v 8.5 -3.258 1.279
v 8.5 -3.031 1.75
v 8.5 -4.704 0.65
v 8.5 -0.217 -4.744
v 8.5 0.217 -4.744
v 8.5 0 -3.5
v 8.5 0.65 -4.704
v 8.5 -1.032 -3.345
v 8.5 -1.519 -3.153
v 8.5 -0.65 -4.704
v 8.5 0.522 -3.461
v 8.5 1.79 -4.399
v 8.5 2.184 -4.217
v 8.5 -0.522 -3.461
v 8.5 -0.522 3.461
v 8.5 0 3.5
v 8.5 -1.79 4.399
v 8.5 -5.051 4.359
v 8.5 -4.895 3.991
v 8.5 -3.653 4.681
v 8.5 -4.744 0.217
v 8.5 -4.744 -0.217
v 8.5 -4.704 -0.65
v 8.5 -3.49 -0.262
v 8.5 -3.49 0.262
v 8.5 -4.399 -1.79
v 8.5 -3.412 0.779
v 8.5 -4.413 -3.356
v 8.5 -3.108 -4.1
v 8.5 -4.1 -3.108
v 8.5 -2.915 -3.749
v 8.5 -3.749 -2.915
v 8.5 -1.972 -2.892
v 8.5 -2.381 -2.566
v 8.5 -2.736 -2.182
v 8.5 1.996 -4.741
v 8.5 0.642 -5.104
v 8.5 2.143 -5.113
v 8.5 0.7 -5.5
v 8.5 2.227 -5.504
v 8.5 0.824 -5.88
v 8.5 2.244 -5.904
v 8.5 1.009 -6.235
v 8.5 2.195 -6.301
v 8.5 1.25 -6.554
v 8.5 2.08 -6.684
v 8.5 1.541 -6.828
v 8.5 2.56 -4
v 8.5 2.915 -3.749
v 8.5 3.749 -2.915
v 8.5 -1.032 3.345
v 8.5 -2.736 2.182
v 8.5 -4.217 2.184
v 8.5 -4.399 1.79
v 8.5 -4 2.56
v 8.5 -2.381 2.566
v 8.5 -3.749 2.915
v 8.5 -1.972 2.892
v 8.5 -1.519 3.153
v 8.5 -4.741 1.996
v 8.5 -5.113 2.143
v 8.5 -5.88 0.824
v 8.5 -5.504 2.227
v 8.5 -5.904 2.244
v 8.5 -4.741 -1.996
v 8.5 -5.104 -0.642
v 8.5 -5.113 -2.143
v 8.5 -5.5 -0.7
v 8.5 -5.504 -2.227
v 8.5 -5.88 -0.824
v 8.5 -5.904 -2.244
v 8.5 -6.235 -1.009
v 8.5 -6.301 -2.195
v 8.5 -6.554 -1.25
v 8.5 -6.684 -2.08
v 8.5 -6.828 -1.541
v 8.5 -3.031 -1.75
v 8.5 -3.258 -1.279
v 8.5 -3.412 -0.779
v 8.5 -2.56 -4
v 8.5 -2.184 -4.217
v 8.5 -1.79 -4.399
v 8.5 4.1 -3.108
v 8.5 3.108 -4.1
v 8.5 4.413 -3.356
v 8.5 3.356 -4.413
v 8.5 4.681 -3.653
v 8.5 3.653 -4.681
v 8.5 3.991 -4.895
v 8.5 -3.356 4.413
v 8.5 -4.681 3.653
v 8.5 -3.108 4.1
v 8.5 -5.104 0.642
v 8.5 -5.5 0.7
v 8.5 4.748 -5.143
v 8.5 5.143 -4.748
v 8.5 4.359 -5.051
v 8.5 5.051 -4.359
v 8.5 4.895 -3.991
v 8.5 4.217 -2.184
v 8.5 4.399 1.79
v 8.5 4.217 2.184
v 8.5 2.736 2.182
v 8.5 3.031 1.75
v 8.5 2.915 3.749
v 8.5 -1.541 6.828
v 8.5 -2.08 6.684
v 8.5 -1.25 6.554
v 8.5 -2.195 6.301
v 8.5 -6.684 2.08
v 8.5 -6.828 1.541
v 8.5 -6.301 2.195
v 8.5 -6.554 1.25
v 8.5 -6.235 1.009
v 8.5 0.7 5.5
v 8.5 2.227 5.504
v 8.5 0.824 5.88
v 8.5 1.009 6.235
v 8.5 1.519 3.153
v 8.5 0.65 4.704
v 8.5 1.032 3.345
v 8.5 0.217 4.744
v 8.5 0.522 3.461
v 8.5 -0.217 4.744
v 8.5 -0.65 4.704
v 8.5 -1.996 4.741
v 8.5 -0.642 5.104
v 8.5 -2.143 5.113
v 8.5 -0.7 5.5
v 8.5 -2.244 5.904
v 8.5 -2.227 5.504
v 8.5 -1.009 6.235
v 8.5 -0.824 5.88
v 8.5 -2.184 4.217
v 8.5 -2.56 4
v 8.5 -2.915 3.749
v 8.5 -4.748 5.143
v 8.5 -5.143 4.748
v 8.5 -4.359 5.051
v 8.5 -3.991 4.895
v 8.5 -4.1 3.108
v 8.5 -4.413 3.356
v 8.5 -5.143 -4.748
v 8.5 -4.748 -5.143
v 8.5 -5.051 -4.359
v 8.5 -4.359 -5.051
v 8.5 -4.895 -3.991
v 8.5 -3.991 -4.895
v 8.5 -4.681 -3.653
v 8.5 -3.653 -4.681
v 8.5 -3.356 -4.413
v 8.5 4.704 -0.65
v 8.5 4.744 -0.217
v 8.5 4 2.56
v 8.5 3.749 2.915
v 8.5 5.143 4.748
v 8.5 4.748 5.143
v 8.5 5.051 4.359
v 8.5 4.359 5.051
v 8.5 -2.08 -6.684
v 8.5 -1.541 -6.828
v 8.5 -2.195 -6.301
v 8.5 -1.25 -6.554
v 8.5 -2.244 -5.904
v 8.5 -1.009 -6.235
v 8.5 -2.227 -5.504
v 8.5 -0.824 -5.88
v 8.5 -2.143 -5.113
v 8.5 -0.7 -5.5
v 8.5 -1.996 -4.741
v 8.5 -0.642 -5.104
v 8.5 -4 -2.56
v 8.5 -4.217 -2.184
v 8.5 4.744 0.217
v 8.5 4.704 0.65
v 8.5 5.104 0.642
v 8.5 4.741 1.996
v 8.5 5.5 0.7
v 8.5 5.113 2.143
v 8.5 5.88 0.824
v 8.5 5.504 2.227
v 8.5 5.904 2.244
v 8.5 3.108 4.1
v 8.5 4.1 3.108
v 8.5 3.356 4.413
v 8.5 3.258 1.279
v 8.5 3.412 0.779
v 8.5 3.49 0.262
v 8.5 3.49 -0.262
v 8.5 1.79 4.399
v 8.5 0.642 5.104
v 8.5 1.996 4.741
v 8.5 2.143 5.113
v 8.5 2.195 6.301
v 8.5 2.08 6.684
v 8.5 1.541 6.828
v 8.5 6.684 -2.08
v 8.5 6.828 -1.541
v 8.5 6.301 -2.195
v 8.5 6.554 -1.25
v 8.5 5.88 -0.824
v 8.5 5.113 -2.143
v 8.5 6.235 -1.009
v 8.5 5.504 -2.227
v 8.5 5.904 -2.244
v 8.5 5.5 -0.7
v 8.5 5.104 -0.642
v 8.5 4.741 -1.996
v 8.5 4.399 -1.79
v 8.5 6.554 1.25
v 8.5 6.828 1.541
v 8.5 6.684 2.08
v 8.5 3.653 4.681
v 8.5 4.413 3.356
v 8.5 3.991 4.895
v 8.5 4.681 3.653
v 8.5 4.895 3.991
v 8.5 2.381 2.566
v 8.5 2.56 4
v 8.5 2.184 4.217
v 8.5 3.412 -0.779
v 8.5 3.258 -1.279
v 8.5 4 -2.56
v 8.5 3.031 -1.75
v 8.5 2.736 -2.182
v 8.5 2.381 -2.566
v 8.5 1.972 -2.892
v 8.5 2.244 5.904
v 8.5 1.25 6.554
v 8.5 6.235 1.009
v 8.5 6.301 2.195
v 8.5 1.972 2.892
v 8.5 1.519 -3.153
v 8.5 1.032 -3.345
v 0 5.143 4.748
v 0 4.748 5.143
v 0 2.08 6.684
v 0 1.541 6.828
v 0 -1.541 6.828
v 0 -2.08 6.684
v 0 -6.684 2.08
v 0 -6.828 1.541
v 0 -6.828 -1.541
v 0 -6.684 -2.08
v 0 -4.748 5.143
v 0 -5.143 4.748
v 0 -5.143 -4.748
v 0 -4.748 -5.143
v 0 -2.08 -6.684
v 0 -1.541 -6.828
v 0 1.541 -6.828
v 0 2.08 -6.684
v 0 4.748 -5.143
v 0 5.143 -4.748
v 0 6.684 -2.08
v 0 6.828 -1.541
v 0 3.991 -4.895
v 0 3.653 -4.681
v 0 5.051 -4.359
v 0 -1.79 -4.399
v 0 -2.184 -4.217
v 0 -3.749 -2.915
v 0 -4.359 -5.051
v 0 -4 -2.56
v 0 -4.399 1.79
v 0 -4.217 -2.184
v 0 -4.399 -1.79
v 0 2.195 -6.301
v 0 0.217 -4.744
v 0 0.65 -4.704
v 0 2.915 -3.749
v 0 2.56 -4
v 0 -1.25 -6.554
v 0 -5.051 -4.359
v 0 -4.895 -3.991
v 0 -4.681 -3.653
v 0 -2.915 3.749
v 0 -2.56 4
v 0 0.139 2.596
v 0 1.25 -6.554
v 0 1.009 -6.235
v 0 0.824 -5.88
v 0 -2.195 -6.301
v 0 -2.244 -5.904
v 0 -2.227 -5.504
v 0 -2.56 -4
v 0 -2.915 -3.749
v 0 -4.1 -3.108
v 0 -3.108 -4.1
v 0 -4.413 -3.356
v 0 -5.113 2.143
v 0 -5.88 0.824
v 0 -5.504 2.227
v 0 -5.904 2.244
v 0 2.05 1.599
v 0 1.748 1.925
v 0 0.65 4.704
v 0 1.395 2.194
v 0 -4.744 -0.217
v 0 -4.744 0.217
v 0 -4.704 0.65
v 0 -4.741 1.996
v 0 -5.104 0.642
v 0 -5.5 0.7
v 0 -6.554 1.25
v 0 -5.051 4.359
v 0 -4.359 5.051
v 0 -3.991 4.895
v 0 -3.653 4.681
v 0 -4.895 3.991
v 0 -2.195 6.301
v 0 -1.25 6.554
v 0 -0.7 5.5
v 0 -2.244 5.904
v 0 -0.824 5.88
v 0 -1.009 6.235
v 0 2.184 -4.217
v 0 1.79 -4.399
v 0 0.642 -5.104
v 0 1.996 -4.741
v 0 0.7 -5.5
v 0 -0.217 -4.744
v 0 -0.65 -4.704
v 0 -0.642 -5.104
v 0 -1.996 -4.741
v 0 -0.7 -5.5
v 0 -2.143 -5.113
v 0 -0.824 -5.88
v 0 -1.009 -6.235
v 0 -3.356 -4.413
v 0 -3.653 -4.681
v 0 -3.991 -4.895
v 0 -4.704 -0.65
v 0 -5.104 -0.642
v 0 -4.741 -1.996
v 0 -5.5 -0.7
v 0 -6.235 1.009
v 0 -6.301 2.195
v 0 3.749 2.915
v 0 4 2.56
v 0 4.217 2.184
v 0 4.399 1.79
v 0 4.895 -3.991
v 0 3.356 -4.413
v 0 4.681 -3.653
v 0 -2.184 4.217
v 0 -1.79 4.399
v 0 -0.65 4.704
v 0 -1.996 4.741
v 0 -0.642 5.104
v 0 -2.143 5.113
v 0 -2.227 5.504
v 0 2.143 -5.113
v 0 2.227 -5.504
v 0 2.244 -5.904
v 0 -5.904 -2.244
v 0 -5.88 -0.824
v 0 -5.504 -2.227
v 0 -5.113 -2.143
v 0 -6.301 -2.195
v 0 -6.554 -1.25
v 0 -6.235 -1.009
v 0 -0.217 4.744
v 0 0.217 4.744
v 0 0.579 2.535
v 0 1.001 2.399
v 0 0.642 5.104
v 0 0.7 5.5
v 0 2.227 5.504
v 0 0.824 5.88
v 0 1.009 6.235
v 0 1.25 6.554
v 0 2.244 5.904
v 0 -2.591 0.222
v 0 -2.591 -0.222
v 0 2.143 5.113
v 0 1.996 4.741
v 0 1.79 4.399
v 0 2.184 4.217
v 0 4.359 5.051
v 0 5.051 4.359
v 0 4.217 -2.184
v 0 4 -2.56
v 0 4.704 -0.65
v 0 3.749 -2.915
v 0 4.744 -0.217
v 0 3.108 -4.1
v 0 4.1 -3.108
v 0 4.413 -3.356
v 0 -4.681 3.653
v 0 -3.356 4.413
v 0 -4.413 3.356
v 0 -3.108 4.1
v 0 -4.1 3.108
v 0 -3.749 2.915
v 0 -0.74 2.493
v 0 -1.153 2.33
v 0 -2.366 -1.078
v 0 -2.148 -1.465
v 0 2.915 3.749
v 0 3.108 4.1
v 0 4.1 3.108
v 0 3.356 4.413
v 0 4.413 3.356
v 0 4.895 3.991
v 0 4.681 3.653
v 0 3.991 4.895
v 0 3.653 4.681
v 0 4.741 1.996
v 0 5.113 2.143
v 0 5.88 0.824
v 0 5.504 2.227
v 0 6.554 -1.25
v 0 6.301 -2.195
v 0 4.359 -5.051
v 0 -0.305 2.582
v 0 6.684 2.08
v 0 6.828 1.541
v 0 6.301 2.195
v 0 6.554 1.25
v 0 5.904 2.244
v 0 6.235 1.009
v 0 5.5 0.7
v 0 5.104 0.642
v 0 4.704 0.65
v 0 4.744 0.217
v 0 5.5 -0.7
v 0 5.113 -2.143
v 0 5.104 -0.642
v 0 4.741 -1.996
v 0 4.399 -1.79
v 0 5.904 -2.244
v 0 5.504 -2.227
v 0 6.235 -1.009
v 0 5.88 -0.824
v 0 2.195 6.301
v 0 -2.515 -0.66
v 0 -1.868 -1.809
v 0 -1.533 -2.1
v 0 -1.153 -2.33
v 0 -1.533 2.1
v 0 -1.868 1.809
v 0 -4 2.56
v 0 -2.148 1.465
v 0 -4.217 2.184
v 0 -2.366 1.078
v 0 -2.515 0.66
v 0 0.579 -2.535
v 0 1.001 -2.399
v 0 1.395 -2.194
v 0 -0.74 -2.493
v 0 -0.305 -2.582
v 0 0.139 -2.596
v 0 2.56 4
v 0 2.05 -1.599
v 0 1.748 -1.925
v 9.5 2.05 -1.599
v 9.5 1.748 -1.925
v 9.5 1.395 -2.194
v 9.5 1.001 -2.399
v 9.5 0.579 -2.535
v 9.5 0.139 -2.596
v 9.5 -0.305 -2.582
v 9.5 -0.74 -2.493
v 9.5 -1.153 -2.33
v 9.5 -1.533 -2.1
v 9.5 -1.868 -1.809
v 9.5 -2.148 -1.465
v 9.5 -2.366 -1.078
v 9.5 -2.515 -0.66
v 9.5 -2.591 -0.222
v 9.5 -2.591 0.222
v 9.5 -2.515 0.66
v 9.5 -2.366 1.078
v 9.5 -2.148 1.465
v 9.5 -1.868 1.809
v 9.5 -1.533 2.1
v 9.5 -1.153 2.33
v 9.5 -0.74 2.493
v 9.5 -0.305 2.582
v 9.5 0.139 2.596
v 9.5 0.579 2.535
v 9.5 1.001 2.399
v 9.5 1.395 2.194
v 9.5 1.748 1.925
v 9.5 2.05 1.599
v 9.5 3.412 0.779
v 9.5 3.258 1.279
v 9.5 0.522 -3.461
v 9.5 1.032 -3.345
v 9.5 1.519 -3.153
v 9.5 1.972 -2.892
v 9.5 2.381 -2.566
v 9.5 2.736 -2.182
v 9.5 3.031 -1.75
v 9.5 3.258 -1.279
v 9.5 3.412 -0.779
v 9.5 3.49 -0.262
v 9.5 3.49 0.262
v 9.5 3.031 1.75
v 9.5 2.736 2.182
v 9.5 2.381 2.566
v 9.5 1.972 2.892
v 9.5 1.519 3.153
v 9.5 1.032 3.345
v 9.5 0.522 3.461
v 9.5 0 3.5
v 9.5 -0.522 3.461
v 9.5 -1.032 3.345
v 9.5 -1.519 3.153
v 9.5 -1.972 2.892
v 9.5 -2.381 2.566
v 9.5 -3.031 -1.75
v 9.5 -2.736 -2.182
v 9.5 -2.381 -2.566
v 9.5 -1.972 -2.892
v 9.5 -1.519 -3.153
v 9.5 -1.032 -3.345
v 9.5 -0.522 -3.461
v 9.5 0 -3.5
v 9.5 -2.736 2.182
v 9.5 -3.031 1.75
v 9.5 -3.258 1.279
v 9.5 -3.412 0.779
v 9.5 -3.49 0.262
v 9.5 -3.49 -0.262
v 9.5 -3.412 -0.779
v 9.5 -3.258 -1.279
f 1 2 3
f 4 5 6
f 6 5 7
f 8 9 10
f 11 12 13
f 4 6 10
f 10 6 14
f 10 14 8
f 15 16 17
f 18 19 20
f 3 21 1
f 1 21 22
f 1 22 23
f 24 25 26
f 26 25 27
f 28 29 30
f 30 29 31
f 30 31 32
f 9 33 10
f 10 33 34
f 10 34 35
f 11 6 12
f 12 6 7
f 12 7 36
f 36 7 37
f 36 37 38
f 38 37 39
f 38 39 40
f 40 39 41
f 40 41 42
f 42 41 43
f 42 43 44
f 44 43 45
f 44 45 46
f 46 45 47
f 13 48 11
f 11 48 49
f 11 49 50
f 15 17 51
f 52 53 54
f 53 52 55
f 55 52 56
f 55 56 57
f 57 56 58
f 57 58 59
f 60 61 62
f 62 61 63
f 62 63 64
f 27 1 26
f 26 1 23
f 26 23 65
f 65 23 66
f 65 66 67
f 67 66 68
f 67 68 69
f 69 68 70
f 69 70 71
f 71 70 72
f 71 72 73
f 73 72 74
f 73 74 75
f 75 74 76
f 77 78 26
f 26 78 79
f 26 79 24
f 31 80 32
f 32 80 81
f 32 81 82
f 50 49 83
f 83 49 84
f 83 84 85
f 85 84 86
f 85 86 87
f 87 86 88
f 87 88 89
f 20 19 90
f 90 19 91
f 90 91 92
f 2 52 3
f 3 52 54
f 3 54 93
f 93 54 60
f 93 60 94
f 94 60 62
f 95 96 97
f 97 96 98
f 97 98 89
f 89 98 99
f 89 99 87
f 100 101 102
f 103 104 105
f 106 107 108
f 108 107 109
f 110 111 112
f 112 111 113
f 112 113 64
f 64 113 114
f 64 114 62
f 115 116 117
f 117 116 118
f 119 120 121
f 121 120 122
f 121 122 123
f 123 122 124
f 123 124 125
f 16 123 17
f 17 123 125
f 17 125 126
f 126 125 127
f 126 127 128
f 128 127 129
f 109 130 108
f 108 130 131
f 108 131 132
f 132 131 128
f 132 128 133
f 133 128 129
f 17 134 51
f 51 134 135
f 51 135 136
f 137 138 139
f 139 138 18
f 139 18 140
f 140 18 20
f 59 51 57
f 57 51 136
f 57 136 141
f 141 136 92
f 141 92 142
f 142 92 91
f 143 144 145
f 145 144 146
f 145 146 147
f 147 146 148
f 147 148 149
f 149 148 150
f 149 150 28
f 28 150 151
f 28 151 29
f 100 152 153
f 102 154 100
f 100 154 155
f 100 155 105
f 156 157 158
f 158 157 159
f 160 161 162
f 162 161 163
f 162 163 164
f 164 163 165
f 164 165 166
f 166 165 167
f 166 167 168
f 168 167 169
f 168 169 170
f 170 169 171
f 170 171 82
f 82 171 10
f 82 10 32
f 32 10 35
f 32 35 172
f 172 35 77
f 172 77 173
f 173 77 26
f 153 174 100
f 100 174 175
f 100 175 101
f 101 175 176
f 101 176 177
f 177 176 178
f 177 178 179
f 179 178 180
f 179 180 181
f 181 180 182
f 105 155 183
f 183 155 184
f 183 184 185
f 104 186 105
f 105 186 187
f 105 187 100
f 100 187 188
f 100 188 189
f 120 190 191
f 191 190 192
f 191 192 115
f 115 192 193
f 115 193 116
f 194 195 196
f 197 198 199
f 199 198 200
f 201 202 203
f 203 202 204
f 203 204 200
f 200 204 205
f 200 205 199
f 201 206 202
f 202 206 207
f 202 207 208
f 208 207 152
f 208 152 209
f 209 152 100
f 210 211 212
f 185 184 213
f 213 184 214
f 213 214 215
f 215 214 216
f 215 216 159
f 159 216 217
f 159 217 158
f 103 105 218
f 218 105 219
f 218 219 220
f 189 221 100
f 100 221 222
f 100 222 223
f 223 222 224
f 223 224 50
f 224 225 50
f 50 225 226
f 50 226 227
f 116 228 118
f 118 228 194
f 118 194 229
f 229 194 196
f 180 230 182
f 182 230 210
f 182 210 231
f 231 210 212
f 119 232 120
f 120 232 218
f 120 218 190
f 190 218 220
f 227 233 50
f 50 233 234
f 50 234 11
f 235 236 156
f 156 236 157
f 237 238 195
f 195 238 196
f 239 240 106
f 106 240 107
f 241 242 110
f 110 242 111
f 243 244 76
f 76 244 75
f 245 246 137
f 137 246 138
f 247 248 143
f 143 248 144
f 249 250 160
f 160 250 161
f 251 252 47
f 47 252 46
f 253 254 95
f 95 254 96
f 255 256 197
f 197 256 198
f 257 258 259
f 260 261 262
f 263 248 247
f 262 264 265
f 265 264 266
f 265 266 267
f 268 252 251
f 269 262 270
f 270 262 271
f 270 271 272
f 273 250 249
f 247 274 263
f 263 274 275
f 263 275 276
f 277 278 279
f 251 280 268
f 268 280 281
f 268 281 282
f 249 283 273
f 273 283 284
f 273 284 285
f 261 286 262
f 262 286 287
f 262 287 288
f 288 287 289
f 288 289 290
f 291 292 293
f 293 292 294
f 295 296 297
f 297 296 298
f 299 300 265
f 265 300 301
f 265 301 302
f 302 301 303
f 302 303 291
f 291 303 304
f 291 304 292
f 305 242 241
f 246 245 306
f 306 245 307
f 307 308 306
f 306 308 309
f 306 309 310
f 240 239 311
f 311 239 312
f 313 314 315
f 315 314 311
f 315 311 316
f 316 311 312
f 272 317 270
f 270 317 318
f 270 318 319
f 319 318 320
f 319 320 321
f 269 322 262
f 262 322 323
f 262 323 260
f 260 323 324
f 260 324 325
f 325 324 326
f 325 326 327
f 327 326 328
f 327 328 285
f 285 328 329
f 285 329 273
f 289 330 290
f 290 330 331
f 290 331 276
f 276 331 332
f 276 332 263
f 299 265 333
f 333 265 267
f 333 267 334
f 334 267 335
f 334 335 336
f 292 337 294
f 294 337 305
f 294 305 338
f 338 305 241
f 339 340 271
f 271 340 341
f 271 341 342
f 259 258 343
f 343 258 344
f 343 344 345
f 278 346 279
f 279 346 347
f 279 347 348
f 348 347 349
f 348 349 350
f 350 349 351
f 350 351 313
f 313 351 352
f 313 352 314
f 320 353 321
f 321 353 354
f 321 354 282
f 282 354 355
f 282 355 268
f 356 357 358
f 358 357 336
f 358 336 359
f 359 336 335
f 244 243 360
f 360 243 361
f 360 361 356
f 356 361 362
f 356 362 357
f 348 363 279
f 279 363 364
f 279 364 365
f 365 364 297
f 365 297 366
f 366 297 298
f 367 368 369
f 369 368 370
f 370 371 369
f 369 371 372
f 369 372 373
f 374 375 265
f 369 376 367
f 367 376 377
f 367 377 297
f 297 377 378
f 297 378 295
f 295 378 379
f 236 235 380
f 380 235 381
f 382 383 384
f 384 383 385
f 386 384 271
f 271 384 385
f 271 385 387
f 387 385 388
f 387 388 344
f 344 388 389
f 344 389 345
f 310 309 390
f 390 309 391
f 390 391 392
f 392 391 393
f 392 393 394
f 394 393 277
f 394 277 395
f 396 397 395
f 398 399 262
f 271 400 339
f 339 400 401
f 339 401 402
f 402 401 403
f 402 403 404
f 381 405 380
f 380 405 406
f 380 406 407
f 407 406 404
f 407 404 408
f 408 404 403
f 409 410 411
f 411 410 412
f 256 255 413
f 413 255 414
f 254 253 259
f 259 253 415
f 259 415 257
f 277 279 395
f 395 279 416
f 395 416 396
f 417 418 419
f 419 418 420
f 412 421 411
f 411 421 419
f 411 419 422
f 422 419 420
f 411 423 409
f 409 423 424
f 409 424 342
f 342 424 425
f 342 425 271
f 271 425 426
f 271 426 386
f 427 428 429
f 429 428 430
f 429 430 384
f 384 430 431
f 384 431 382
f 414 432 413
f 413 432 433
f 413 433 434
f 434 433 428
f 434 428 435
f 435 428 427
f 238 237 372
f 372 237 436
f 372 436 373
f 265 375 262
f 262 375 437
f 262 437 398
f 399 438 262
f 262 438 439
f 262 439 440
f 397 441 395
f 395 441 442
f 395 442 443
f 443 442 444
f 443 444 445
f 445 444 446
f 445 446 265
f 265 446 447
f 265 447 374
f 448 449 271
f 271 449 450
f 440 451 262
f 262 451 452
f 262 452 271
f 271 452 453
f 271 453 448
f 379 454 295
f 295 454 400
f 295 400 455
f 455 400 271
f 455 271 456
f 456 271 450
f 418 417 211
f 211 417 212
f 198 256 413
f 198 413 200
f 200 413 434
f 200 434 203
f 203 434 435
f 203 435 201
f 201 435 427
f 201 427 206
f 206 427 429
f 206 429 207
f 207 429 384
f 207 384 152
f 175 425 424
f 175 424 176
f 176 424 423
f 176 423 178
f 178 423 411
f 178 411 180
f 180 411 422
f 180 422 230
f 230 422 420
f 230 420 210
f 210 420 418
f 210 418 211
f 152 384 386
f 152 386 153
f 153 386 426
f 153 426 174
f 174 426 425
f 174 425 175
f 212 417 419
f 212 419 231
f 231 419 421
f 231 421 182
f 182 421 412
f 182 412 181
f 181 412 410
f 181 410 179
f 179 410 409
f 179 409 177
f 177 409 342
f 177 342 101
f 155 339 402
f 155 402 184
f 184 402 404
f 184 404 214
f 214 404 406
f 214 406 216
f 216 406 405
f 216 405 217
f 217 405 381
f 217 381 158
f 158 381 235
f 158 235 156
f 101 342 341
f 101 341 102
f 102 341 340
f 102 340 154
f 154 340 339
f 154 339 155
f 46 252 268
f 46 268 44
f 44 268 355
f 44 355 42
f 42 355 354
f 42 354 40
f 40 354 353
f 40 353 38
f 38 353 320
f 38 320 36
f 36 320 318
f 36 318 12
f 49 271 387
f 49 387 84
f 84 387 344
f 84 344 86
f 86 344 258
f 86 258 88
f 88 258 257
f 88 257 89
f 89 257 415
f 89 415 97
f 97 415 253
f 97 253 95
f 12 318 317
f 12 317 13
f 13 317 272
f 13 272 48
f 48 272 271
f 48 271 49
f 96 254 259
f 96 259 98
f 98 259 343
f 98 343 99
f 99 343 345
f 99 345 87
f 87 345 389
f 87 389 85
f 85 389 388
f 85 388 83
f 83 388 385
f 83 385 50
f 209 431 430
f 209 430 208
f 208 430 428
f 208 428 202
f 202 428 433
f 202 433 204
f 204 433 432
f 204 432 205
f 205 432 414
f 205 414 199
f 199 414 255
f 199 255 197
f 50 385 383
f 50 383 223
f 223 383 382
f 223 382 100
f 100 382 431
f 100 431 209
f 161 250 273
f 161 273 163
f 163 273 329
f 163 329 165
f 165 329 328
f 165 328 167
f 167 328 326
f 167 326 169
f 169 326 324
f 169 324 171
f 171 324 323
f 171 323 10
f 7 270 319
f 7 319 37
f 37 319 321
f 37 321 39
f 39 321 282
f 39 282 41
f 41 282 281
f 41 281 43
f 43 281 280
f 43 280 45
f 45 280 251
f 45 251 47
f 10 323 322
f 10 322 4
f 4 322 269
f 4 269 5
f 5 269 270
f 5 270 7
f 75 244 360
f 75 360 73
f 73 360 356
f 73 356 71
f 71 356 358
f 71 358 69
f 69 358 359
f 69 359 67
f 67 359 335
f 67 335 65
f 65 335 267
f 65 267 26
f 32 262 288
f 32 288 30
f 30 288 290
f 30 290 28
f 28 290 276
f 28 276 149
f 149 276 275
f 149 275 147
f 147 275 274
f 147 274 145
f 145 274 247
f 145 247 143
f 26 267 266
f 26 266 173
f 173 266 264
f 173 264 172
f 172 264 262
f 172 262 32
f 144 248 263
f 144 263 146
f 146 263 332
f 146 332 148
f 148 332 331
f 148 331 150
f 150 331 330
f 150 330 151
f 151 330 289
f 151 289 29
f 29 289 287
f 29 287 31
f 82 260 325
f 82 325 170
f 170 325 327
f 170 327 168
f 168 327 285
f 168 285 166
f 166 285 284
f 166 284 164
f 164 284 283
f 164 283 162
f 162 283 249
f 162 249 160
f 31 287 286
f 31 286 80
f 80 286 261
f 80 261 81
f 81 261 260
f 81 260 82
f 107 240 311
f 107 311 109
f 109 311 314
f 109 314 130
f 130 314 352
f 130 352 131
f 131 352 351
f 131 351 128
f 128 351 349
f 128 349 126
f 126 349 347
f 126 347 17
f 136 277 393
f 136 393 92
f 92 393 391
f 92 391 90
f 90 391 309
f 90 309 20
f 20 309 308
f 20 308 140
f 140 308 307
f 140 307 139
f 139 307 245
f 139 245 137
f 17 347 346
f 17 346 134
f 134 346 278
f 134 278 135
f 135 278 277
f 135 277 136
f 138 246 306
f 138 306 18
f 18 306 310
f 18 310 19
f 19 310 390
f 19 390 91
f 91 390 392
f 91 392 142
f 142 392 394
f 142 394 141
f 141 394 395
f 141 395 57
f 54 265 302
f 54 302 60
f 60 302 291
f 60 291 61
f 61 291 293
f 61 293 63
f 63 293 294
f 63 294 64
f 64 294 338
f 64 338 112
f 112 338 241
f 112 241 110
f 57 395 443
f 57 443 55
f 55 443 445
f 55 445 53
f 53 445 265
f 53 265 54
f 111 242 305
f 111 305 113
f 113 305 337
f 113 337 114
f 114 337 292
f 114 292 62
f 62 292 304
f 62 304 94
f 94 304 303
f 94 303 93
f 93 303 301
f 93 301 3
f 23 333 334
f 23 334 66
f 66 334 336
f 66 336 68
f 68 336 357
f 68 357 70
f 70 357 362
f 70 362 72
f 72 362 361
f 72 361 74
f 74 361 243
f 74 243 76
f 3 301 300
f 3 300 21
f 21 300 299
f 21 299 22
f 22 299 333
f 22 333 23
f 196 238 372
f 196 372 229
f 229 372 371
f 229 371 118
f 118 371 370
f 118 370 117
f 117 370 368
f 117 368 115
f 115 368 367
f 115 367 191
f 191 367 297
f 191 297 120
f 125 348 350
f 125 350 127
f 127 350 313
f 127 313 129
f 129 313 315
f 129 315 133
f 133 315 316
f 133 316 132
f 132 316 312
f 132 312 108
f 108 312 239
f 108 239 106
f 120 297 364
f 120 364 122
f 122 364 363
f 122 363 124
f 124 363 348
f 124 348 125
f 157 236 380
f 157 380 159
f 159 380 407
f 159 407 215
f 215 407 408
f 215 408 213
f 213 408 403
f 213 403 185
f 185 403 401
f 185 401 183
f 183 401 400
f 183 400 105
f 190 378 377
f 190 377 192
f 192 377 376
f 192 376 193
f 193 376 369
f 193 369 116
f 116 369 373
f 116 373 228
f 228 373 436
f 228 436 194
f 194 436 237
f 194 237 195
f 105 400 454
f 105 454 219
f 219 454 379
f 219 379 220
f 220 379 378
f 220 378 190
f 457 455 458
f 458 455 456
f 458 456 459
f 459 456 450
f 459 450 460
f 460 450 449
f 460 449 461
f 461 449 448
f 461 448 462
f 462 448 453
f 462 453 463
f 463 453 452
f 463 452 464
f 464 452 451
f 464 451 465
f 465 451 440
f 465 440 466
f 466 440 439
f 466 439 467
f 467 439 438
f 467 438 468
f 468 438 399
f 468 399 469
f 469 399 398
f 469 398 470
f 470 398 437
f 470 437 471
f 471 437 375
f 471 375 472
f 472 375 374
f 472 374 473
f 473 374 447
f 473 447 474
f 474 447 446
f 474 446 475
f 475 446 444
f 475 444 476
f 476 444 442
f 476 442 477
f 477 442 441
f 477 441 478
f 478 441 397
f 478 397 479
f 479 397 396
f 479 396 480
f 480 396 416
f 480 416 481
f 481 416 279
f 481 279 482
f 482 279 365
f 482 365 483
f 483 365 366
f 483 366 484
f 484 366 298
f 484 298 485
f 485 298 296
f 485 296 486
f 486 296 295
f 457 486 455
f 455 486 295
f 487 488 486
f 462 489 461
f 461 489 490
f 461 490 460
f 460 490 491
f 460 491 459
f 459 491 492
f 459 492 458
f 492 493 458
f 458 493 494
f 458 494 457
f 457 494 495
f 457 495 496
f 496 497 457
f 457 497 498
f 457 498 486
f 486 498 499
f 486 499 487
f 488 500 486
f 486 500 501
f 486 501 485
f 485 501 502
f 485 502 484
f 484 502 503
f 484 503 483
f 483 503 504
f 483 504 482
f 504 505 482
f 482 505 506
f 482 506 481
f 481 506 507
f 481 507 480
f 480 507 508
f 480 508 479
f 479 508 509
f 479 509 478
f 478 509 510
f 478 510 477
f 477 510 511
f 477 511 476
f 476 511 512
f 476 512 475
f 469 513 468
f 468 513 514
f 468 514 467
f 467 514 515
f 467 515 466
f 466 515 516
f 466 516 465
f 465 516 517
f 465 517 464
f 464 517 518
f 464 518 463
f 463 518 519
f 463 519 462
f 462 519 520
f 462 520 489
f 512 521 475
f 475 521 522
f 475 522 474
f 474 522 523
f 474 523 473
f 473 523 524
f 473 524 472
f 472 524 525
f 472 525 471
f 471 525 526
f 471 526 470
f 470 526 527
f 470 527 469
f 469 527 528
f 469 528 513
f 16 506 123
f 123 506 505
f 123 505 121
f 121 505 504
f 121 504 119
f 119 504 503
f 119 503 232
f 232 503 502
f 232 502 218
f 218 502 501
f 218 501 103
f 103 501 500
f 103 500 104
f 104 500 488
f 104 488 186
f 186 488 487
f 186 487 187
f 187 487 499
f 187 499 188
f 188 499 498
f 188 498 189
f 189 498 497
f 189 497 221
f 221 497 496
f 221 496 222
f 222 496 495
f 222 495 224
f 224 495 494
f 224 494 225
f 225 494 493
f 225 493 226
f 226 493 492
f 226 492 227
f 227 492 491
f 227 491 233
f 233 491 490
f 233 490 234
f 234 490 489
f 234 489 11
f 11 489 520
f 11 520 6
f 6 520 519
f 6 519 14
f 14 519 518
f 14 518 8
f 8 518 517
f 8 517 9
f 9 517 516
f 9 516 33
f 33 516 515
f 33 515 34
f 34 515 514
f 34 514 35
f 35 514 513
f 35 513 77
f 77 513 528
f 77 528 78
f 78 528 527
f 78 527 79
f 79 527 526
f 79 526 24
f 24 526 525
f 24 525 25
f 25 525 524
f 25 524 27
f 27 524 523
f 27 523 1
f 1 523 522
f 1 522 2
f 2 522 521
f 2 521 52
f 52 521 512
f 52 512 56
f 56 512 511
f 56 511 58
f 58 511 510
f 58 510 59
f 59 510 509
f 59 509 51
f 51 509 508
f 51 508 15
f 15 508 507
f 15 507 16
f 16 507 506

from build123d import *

# Parameters (mm, degrees)
BASPROSKE_W         = 8.5
BASPROSKE_H         = 7
TOOTHCUT_DEPTH      = 14.047988351
TEETHCUTS_COUNT     = 12
TEETHCUTS_ANGLE     = 330
BORSKE_R            = 2.6
BORE_DEPTH          = 50.0000508
BOSS_EXTRUDE1_DEPTH = 8.5
SKETCH2_R           = 3.5
BOSS_EXTRUDE2_DEPTH = 1


with BuildPart() as part:
    # BasProSke → Base-Revolve (revolve)
    with BuildSketch(Plane(origin=(0, 0, 0), x_dir=(1, 0, 0), z_dir=(0, 1, 0)), mode=Mode.PRIVATE) as base_revolve_sk:
        with Locations((4.25, 3.5)):
            Rectangle(BASPROSKE_W, BASPROSKE_H)
    revolve(base_revolve_sk.sketch.rotate(Axis((-10, 0, 0), (1, 0, 0)), 180), axis=Axis((-10, 0, 0), (1, 0, 0)))

    # TooCutSke → ToothCut (cut, through all)
    with BuildSketch(Plane(origin=(0, 0, 0), x_dir=(0, 0, -1), z_dir=(1, 0, 0))):
        with BuildLine():
            ThreePointArc((0.649675465, 4.704351474), (0, 4.749), (-0.649675465, 4.704351474))
            ThreePointArc((-0.649675465, 4.704351474), (-0.830100462, 5.895273832), (-1.56637772, 6.84855503))
            ThreePointArc((-1.56637772, 6.84855503), (0, 7.0254), (1.56637772, 6.84855503))
            ThreePointArc((1.56637772, 6.84855503), (0.830100462, 5.895273832), (0.649675465, 4.704351474))
        make_face()
    toothcut = extrude(amount=TOOTHCUT_DEPTH, mode=Mode.SUBTRACT)

    # TeethCuts: ToothCut ×12 about axis
    teethcuts_axis = Axis((-10, 0, 0), (1, 0, 0))
    for i in range(1, TEETHCUTS_COUNT):
        add(toothcut.rotate(teethcuts_axis, i * TEETHCUTS_ANGLE / (TEETHCUTS_COUNT - 1)), mode=Mode.SUBTRACT)

    # BorSke → Bore (cut, symmetric)
    with BuildSketch(Plane(origin=(0, 0, 0), x_dir=(0, 0, -1), z_dir=(1, 0, 0))):
        with Locations(Location((0, 0, 0), (0, 0, 180))):
            Circle(BORSKE_R)
    extrude(amount=BORE_DEPTH, both=True, mode=Mode.SUBTRACT)

    # Sketch1 → Boss-Extrude1 (add)
    with BuildSketch(Plane(origin=(8.5, 0, 0), x_dir=(0, 0, -1), z_dir=(1, 0, 0))):
        with BuildLine():
            Line((-1.599218559, 2.05), (1.599218559, 2.05))
            ThreePointArc((1.599218559, 2.05), (0, 2.6), (-1.599218559, 2.05))
        make_face()
    extrude(amount=-BOSS_EXTRUDE1_DEPTH)

    # Sketch2 → Boss-Extrude2 (add)
    with BuildSketch(Plane(origin=(8.5, 0, 0), x_dir=(0, 0, -1), z_dir=(1, 0, 0))):
        with Locations(Location((0, 0, 0), (0, 0, 180))):
            Circle(SKETCH2_R)
        with BuildLine():
            Line((-1.599218559, 2.05), (1.599218559, 2.05))
            ThreePointArc((1.599218559, 2.05), (0, -2.6), (-1.599218559, 2.05))
        make_face(mode=Mode.SUBTRACT)
    extrude(amount=BOSS_EXTRUDE2_DEPTH)


solid = part.part
